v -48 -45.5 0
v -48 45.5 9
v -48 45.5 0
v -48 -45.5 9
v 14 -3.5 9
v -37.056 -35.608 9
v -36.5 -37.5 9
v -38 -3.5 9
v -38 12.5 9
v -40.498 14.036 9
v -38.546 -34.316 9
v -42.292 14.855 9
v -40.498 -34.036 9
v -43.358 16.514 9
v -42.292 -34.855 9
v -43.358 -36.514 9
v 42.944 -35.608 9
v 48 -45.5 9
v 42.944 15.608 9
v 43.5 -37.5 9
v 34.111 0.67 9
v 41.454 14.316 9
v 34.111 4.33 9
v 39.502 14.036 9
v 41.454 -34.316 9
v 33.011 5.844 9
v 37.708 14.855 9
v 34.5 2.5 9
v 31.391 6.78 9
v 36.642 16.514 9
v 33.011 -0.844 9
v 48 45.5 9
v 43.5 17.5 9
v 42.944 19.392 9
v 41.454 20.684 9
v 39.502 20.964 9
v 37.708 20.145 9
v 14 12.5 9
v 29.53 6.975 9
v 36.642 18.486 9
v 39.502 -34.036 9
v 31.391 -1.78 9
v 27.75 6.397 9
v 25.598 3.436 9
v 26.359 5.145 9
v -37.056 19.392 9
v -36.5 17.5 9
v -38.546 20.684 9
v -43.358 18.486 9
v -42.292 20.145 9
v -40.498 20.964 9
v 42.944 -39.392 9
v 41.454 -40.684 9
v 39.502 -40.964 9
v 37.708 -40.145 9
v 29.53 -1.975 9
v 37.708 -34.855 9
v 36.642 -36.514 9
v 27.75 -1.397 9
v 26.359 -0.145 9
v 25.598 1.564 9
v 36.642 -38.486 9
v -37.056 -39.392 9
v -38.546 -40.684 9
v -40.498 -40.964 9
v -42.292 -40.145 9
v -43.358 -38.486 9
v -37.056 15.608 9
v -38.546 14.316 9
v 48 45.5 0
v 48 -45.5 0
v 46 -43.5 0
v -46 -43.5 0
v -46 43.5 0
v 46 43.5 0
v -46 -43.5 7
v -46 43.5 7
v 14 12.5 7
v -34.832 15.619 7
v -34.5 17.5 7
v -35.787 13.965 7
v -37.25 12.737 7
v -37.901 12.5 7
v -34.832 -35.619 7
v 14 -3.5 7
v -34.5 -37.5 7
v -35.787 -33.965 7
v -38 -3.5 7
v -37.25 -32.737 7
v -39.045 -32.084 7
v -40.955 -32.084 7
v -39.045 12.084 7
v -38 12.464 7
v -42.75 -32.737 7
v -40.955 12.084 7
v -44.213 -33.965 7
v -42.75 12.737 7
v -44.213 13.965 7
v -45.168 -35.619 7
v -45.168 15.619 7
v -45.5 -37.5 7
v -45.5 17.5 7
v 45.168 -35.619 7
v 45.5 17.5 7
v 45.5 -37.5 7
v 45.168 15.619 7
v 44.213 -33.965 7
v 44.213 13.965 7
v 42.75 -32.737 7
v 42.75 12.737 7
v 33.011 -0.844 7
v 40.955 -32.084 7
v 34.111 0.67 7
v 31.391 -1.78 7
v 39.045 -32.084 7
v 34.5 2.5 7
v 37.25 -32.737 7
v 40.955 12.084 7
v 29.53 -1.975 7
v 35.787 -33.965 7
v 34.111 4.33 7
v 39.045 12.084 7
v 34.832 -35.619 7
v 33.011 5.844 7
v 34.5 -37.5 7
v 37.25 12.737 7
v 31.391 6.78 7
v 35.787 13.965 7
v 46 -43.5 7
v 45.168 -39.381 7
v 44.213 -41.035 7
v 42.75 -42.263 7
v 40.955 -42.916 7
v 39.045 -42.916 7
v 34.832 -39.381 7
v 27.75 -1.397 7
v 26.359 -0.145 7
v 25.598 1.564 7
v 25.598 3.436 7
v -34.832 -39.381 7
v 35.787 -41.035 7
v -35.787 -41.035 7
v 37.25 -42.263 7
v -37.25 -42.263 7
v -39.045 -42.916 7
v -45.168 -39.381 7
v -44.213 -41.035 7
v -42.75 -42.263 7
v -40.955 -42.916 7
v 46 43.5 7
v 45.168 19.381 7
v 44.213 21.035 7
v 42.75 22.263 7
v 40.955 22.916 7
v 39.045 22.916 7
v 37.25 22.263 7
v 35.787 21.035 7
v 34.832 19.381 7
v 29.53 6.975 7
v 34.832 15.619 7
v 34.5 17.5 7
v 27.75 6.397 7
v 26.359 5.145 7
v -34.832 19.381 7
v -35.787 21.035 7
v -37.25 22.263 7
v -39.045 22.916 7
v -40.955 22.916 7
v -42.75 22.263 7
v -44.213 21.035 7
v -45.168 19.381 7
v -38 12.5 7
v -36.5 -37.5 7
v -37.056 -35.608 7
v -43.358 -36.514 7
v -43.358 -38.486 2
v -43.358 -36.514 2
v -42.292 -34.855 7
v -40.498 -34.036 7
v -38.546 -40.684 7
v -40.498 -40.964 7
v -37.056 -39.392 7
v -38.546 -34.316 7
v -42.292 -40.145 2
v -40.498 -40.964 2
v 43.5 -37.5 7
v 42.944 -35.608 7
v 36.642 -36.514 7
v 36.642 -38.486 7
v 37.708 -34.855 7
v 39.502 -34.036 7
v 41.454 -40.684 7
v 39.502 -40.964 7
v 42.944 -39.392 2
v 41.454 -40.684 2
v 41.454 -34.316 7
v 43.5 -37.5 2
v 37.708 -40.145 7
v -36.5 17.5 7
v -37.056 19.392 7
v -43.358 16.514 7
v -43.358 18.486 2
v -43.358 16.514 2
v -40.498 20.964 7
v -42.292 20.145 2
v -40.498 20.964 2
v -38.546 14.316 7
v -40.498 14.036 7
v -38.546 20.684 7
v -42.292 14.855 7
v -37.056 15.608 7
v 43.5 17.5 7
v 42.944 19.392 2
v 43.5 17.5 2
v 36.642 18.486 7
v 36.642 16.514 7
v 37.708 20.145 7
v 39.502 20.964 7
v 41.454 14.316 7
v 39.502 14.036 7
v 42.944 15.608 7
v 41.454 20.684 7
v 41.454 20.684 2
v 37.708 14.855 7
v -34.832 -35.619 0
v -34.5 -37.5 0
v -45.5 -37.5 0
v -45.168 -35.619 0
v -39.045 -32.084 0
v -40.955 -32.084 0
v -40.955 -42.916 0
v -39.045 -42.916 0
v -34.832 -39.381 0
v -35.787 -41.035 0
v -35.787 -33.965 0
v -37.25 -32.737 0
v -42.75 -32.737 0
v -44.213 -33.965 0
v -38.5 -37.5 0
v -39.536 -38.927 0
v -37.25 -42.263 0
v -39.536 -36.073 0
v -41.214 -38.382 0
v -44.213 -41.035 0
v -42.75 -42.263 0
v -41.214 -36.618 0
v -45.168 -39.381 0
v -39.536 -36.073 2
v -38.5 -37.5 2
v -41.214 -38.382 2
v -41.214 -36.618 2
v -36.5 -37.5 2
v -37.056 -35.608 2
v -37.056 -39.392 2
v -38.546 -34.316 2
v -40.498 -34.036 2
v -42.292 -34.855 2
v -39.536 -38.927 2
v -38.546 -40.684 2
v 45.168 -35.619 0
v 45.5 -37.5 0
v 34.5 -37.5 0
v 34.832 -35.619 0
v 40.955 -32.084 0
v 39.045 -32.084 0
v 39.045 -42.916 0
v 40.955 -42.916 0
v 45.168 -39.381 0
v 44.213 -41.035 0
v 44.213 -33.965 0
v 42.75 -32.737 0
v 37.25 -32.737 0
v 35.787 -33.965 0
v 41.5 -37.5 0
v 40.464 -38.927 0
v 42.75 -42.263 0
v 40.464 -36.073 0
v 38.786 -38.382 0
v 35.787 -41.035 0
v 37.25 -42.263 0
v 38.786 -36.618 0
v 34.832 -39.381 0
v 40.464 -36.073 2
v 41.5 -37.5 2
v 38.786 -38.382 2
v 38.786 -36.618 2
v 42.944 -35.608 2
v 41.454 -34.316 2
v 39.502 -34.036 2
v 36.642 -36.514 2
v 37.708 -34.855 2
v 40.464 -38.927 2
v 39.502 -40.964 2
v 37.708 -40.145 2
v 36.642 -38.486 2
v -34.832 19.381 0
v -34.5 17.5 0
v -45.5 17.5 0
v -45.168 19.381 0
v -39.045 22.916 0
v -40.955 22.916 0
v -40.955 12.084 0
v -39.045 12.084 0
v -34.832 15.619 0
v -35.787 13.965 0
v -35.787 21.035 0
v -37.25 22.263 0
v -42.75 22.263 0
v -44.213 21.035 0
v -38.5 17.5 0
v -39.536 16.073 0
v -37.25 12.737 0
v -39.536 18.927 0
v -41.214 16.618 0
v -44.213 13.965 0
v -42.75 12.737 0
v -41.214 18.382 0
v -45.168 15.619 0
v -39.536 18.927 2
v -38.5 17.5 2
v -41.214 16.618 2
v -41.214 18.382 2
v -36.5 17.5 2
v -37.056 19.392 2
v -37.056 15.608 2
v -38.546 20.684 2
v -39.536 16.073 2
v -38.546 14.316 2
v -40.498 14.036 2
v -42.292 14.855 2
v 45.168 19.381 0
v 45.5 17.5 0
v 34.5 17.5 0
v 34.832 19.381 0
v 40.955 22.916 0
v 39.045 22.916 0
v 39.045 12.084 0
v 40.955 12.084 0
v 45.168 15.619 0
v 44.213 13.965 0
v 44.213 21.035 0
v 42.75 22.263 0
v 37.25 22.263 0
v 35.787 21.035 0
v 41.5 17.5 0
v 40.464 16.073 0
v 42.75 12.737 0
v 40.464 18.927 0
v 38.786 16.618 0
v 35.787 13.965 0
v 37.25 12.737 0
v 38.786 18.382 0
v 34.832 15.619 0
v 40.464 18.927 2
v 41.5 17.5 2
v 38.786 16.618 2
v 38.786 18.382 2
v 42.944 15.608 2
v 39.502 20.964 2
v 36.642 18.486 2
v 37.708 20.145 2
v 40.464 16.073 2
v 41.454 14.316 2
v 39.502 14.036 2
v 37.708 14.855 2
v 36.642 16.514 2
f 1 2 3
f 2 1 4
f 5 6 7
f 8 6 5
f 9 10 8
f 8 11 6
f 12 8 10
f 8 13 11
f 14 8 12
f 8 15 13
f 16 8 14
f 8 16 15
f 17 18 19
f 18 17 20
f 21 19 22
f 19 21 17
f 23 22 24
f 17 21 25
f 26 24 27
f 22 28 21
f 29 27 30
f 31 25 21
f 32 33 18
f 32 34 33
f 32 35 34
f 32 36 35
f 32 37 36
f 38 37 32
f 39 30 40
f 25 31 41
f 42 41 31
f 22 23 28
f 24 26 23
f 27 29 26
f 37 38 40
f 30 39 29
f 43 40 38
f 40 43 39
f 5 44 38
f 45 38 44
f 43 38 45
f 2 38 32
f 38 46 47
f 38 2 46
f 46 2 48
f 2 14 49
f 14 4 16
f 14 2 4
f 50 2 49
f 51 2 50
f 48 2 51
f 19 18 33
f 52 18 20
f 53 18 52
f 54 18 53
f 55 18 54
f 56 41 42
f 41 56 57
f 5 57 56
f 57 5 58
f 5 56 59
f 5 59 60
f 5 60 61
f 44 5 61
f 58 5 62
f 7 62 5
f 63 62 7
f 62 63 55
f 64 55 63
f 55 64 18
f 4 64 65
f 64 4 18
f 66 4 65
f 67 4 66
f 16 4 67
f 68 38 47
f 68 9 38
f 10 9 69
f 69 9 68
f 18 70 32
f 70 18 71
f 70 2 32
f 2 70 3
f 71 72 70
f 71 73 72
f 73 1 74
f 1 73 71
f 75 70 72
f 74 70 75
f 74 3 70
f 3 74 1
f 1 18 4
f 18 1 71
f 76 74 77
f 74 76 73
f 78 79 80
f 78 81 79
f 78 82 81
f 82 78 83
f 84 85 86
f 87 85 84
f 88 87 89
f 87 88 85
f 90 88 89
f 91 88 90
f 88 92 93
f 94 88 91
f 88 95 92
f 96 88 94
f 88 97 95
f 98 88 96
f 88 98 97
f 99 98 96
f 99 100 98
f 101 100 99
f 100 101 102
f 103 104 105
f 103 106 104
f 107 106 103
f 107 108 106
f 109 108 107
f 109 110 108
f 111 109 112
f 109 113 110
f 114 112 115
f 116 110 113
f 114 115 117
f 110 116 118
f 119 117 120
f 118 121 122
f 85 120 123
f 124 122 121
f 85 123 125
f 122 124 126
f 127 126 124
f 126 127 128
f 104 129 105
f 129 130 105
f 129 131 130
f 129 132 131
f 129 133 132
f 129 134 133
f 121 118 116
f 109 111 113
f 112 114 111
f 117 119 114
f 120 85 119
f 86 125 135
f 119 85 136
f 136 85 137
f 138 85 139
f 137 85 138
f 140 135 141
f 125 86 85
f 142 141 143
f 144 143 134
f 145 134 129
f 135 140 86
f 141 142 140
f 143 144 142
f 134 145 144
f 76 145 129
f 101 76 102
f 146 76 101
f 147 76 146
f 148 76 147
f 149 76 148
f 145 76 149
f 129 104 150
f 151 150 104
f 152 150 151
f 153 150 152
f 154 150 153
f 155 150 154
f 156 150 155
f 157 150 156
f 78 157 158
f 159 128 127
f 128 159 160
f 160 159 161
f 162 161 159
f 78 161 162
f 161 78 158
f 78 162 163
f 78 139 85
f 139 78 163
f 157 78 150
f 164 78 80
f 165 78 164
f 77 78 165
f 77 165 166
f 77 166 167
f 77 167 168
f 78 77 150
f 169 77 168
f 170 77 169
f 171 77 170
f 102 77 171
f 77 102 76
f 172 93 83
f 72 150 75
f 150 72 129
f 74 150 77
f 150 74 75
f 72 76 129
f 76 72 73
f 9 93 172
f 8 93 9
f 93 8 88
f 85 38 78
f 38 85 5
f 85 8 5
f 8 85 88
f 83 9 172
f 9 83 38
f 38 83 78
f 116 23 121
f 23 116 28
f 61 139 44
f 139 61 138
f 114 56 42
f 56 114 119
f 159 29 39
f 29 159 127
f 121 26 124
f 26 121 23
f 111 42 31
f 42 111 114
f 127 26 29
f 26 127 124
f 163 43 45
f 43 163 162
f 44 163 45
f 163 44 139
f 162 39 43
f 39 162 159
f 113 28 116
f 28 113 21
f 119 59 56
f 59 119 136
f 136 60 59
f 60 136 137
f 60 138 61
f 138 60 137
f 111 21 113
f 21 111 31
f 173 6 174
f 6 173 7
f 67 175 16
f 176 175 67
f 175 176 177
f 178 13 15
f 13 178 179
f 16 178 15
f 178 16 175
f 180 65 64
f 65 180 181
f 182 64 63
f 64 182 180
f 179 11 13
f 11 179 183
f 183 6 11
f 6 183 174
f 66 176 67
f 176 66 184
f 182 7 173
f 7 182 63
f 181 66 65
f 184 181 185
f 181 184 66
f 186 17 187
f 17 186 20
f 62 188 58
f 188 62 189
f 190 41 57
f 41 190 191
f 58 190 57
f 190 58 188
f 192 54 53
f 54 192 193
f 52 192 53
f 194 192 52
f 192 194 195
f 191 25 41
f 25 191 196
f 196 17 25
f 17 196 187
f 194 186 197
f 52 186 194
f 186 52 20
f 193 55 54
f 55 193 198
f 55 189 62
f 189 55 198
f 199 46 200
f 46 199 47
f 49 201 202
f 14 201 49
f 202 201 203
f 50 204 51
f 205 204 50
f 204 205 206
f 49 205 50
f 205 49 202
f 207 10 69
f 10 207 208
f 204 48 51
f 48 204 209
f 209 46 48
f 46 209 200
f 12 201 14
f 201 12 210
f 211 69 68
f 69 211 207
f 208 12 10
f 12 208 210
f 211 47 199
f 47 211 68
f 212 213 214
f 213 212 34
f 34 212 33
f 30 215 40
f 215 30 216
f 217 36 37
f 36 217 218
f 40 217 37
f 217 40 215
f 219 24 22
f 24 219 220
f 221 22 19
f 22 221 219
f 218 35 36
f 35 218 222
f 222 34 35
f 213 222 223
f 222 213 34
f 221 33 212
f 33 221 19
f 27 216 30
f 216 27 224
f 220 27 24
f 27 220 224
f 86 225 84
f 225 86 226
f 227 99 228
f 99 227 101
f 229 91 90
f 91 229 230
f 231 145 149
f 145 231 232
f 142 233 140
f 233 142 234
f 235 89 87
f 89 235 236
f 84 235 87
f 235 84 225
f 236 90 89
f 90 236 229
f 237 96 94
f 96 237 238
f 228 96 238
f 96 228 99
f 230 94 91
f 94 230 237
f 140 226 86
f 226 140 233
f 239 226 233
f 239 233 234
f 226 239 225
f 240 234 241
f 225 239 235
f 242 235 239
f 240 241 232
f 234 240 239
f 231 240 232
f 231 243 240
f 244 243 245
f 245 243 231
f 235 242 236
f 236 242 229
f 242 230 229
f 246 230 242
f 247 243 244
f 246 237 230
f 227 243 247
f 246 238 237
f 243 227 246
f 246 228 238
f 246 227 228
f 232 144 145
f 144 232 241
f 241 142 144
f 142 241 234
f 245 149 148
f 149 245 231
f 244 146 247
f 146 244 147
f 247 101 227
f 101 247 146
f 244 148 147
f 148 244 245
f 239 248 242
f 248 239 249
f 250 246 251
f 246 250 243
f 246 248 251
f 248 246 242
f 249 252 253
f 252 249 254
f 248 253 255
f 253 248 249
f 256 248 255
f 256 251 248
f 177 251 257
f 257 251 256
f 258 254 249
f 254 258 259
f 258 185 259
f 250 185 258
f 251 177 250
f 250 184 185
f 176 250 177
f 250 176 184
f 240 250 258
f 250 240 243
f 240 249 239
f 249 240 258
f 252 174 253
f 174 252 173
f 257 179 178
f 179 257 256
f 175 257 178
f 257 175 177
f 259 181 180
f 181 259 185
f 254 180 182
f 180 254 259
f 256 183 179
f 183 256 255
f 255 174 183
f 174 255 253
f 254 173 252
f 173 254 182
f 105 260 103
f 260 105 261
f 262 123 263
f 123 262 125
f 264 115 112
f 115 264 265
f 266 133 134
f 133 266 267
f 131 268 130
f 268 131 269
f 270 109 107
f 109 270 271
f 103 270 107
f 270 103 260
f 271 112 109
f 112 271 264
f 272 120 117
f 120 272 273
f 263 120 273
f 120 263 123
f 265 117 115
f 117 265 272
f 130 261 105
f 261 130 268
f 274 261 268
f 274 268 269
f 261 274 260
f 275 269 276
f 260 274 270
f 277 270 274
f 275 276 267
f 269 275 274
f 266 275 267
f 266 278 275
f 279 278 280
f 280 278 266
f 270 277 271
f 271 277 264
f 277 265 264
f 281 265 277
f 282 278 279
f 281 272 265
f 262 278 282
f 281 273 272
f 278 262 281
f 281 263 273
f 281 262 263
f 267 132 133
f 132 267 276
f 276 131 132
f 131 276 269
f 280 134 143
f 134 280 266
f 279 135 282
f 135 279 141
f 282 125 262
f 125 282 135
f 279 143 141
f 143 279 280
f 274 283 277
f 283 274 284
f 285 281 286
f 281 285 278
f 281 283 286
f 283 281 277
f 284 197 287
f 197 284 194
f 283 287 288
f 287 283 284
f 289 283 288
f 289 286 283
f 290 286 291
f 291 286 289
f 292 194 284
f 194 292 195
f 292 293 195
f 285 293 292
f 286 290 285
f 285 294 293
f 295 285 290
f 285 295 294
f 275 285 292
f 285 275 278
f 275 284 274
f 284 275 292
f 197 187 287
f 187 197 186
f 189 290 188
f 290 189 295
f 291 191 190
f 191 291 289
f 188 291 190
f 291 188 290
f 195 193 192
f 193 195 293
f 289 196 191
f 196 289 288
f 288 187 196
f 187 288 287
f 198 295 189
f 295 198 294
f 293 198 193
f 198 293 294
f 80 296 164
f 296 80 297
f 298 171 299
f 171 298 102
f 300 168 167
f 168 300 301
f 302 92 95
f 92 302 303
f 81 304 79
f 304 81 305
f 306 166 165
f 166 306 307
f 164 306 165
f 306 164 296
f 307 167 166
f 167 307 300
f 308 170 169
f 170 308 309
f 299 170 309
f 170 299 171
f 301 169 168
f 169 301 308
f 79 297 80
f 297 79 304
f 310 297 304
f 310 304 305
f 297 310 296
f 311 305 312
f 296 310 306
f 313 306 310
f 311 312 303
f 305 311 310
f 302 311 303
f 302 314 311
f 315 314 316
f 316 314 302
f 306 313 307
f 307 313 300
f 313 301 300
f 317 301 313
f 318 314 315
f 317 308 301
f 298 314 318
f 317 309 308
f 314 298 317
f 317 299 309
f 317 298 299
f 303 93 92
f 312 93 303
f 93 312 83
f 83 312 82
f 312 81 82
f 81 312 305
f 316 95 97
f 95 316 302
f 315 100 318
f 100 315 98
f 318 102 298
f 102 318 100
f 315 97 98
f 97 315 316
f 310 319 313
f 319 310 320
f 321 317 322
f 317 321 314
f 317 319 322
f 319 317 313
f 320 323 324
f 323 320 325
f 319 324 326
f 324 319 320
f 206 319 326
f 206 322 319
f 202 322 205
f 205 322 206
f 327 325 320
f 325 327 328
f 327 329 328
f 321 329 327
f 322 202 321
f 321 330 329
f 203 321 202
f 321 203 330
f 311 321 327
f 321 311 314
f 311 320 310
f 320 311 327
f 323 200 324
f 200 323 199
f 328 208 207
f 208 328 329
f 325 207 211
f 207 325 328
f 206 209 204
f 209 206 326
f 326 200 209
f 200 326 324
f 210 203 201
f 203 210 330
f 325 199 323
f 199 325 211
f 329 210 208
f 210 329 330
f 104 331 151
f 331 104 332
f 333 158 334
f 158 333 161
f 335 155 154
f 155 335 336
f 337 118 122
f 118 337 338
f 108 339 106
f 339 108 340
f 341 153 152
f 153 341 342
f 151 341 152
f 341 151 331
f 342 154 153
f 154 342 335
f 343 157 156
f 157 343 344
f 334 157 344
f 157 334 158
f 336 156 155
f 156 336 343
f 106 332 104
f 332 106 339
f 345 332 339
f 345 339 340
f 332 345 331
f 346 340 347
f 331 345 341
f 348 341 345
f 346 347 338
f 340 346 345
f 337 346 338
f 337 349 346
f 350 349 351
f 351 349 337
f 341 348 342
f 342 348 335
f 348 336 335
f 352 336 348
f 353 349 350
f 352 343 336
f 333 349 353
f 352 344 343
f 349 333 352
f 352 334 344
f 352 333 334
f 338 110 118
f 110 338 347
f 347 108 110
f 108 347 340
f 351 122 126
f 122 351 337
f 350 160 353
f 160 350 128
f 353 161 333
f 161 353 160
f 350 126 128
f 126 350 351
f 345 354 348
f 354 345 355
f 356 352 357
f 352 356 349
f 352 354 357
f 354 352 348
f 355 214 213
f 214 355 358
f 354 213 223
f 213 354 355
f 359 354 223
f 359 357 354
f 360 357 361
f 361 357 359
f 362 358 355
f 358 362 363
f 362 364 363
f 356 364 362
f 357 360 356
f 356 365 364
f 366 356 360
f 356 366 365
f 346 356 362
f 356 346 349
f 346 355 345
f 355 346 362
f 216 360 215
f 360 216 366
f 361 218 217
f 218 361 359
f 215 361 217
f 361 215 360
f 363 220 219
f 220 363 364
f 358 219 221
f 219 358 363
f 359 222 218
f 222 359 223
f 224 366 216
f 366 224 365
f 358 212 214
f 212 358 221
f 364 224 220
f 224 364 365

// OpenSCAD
// nise8031 case upper

// Bottom Outer

PCBW=1.8;
PCBS=20;
SPACE=7.0;
SHELLW=2.0;


difference() {

translate([-46-SHELLW,-43.5-SHELLW,0]) {    
cube([92+SHELLW*2,87+SHELLW*2,(SPACE+SHELLW)]);
};


translate([-46,-43.5,0]) {  
cube([92,87,SPACE]);
};

// LCD Window

translate([-46+8,-43.5+40,SPACE]) {
    
    cube([52,16,SHELLW]);    
       
}

// RE Hole

translate([-46+76,-43.5+46,SPACE]) {
    
    cylinder(SHELLW,4.5,4.5);  
       
}

// Upper Holes

translate([-40,-37.5,SPACE]) {
    
cylinder(SHELLW,3.5,3.5);    
       
}

translate([+40,-37.5,SPACE]) {
    
cylinder(SHELLW,3.5,3.5);    
       
}

translate([-40,-37.5+55,SPACE]) {
    
cylinder(SHELLW,3.5,3.5);    
       
}

translate([+40,-37.5+55,SPACE]) {
    
cylinder(SHELLW,3.5,3.5);    
       
}

}

translate([-40,-37.5,0]) {

difference() {
    
cylinder(SPACE,5.5,5.5);   
   {
    cylinder(SHELLW,1.5,1.5);
        translate([0,0,SHELLW]) {  
            cylinder(SPACE-SHELLW,3.5,3.5);     
        }
    }       
}
    
};

translate([+40,-37.5,0]) {

difference() {
    
cylinder(SPACE,5.5,5.5);   
   {
    cylinder(SHELLW,1.5,1.5);
        translate([0,0,SHELLW]) {  
            cylinder(SPACE-SHELLW,3.5,3.5);     
        }
    }       
}
    
};

translate([-40,-37.5+55,0]) {

difference() {
 
cylinder(SPACE,5.5,5.5);   
   {
    cylinder(SHELLW,1.5,1.5);
        translate([0,0,SHELLW]) {  
            cylinder(SPACE-SHELLW,3.5,3.5);     
        }
    }       
} 
 
    
};

translate([+40,-37.5+55,0]) {

difference() {

cylinder(SPACE,5.5,5.5);   
   {
    cylinder(SHELLW,1.5,1.5);
        translate([0,0,SHELLW]) {  
            cylinder(SPACE-SHELLW,3.5,3.5);     
        }
    }       
}
    
};
